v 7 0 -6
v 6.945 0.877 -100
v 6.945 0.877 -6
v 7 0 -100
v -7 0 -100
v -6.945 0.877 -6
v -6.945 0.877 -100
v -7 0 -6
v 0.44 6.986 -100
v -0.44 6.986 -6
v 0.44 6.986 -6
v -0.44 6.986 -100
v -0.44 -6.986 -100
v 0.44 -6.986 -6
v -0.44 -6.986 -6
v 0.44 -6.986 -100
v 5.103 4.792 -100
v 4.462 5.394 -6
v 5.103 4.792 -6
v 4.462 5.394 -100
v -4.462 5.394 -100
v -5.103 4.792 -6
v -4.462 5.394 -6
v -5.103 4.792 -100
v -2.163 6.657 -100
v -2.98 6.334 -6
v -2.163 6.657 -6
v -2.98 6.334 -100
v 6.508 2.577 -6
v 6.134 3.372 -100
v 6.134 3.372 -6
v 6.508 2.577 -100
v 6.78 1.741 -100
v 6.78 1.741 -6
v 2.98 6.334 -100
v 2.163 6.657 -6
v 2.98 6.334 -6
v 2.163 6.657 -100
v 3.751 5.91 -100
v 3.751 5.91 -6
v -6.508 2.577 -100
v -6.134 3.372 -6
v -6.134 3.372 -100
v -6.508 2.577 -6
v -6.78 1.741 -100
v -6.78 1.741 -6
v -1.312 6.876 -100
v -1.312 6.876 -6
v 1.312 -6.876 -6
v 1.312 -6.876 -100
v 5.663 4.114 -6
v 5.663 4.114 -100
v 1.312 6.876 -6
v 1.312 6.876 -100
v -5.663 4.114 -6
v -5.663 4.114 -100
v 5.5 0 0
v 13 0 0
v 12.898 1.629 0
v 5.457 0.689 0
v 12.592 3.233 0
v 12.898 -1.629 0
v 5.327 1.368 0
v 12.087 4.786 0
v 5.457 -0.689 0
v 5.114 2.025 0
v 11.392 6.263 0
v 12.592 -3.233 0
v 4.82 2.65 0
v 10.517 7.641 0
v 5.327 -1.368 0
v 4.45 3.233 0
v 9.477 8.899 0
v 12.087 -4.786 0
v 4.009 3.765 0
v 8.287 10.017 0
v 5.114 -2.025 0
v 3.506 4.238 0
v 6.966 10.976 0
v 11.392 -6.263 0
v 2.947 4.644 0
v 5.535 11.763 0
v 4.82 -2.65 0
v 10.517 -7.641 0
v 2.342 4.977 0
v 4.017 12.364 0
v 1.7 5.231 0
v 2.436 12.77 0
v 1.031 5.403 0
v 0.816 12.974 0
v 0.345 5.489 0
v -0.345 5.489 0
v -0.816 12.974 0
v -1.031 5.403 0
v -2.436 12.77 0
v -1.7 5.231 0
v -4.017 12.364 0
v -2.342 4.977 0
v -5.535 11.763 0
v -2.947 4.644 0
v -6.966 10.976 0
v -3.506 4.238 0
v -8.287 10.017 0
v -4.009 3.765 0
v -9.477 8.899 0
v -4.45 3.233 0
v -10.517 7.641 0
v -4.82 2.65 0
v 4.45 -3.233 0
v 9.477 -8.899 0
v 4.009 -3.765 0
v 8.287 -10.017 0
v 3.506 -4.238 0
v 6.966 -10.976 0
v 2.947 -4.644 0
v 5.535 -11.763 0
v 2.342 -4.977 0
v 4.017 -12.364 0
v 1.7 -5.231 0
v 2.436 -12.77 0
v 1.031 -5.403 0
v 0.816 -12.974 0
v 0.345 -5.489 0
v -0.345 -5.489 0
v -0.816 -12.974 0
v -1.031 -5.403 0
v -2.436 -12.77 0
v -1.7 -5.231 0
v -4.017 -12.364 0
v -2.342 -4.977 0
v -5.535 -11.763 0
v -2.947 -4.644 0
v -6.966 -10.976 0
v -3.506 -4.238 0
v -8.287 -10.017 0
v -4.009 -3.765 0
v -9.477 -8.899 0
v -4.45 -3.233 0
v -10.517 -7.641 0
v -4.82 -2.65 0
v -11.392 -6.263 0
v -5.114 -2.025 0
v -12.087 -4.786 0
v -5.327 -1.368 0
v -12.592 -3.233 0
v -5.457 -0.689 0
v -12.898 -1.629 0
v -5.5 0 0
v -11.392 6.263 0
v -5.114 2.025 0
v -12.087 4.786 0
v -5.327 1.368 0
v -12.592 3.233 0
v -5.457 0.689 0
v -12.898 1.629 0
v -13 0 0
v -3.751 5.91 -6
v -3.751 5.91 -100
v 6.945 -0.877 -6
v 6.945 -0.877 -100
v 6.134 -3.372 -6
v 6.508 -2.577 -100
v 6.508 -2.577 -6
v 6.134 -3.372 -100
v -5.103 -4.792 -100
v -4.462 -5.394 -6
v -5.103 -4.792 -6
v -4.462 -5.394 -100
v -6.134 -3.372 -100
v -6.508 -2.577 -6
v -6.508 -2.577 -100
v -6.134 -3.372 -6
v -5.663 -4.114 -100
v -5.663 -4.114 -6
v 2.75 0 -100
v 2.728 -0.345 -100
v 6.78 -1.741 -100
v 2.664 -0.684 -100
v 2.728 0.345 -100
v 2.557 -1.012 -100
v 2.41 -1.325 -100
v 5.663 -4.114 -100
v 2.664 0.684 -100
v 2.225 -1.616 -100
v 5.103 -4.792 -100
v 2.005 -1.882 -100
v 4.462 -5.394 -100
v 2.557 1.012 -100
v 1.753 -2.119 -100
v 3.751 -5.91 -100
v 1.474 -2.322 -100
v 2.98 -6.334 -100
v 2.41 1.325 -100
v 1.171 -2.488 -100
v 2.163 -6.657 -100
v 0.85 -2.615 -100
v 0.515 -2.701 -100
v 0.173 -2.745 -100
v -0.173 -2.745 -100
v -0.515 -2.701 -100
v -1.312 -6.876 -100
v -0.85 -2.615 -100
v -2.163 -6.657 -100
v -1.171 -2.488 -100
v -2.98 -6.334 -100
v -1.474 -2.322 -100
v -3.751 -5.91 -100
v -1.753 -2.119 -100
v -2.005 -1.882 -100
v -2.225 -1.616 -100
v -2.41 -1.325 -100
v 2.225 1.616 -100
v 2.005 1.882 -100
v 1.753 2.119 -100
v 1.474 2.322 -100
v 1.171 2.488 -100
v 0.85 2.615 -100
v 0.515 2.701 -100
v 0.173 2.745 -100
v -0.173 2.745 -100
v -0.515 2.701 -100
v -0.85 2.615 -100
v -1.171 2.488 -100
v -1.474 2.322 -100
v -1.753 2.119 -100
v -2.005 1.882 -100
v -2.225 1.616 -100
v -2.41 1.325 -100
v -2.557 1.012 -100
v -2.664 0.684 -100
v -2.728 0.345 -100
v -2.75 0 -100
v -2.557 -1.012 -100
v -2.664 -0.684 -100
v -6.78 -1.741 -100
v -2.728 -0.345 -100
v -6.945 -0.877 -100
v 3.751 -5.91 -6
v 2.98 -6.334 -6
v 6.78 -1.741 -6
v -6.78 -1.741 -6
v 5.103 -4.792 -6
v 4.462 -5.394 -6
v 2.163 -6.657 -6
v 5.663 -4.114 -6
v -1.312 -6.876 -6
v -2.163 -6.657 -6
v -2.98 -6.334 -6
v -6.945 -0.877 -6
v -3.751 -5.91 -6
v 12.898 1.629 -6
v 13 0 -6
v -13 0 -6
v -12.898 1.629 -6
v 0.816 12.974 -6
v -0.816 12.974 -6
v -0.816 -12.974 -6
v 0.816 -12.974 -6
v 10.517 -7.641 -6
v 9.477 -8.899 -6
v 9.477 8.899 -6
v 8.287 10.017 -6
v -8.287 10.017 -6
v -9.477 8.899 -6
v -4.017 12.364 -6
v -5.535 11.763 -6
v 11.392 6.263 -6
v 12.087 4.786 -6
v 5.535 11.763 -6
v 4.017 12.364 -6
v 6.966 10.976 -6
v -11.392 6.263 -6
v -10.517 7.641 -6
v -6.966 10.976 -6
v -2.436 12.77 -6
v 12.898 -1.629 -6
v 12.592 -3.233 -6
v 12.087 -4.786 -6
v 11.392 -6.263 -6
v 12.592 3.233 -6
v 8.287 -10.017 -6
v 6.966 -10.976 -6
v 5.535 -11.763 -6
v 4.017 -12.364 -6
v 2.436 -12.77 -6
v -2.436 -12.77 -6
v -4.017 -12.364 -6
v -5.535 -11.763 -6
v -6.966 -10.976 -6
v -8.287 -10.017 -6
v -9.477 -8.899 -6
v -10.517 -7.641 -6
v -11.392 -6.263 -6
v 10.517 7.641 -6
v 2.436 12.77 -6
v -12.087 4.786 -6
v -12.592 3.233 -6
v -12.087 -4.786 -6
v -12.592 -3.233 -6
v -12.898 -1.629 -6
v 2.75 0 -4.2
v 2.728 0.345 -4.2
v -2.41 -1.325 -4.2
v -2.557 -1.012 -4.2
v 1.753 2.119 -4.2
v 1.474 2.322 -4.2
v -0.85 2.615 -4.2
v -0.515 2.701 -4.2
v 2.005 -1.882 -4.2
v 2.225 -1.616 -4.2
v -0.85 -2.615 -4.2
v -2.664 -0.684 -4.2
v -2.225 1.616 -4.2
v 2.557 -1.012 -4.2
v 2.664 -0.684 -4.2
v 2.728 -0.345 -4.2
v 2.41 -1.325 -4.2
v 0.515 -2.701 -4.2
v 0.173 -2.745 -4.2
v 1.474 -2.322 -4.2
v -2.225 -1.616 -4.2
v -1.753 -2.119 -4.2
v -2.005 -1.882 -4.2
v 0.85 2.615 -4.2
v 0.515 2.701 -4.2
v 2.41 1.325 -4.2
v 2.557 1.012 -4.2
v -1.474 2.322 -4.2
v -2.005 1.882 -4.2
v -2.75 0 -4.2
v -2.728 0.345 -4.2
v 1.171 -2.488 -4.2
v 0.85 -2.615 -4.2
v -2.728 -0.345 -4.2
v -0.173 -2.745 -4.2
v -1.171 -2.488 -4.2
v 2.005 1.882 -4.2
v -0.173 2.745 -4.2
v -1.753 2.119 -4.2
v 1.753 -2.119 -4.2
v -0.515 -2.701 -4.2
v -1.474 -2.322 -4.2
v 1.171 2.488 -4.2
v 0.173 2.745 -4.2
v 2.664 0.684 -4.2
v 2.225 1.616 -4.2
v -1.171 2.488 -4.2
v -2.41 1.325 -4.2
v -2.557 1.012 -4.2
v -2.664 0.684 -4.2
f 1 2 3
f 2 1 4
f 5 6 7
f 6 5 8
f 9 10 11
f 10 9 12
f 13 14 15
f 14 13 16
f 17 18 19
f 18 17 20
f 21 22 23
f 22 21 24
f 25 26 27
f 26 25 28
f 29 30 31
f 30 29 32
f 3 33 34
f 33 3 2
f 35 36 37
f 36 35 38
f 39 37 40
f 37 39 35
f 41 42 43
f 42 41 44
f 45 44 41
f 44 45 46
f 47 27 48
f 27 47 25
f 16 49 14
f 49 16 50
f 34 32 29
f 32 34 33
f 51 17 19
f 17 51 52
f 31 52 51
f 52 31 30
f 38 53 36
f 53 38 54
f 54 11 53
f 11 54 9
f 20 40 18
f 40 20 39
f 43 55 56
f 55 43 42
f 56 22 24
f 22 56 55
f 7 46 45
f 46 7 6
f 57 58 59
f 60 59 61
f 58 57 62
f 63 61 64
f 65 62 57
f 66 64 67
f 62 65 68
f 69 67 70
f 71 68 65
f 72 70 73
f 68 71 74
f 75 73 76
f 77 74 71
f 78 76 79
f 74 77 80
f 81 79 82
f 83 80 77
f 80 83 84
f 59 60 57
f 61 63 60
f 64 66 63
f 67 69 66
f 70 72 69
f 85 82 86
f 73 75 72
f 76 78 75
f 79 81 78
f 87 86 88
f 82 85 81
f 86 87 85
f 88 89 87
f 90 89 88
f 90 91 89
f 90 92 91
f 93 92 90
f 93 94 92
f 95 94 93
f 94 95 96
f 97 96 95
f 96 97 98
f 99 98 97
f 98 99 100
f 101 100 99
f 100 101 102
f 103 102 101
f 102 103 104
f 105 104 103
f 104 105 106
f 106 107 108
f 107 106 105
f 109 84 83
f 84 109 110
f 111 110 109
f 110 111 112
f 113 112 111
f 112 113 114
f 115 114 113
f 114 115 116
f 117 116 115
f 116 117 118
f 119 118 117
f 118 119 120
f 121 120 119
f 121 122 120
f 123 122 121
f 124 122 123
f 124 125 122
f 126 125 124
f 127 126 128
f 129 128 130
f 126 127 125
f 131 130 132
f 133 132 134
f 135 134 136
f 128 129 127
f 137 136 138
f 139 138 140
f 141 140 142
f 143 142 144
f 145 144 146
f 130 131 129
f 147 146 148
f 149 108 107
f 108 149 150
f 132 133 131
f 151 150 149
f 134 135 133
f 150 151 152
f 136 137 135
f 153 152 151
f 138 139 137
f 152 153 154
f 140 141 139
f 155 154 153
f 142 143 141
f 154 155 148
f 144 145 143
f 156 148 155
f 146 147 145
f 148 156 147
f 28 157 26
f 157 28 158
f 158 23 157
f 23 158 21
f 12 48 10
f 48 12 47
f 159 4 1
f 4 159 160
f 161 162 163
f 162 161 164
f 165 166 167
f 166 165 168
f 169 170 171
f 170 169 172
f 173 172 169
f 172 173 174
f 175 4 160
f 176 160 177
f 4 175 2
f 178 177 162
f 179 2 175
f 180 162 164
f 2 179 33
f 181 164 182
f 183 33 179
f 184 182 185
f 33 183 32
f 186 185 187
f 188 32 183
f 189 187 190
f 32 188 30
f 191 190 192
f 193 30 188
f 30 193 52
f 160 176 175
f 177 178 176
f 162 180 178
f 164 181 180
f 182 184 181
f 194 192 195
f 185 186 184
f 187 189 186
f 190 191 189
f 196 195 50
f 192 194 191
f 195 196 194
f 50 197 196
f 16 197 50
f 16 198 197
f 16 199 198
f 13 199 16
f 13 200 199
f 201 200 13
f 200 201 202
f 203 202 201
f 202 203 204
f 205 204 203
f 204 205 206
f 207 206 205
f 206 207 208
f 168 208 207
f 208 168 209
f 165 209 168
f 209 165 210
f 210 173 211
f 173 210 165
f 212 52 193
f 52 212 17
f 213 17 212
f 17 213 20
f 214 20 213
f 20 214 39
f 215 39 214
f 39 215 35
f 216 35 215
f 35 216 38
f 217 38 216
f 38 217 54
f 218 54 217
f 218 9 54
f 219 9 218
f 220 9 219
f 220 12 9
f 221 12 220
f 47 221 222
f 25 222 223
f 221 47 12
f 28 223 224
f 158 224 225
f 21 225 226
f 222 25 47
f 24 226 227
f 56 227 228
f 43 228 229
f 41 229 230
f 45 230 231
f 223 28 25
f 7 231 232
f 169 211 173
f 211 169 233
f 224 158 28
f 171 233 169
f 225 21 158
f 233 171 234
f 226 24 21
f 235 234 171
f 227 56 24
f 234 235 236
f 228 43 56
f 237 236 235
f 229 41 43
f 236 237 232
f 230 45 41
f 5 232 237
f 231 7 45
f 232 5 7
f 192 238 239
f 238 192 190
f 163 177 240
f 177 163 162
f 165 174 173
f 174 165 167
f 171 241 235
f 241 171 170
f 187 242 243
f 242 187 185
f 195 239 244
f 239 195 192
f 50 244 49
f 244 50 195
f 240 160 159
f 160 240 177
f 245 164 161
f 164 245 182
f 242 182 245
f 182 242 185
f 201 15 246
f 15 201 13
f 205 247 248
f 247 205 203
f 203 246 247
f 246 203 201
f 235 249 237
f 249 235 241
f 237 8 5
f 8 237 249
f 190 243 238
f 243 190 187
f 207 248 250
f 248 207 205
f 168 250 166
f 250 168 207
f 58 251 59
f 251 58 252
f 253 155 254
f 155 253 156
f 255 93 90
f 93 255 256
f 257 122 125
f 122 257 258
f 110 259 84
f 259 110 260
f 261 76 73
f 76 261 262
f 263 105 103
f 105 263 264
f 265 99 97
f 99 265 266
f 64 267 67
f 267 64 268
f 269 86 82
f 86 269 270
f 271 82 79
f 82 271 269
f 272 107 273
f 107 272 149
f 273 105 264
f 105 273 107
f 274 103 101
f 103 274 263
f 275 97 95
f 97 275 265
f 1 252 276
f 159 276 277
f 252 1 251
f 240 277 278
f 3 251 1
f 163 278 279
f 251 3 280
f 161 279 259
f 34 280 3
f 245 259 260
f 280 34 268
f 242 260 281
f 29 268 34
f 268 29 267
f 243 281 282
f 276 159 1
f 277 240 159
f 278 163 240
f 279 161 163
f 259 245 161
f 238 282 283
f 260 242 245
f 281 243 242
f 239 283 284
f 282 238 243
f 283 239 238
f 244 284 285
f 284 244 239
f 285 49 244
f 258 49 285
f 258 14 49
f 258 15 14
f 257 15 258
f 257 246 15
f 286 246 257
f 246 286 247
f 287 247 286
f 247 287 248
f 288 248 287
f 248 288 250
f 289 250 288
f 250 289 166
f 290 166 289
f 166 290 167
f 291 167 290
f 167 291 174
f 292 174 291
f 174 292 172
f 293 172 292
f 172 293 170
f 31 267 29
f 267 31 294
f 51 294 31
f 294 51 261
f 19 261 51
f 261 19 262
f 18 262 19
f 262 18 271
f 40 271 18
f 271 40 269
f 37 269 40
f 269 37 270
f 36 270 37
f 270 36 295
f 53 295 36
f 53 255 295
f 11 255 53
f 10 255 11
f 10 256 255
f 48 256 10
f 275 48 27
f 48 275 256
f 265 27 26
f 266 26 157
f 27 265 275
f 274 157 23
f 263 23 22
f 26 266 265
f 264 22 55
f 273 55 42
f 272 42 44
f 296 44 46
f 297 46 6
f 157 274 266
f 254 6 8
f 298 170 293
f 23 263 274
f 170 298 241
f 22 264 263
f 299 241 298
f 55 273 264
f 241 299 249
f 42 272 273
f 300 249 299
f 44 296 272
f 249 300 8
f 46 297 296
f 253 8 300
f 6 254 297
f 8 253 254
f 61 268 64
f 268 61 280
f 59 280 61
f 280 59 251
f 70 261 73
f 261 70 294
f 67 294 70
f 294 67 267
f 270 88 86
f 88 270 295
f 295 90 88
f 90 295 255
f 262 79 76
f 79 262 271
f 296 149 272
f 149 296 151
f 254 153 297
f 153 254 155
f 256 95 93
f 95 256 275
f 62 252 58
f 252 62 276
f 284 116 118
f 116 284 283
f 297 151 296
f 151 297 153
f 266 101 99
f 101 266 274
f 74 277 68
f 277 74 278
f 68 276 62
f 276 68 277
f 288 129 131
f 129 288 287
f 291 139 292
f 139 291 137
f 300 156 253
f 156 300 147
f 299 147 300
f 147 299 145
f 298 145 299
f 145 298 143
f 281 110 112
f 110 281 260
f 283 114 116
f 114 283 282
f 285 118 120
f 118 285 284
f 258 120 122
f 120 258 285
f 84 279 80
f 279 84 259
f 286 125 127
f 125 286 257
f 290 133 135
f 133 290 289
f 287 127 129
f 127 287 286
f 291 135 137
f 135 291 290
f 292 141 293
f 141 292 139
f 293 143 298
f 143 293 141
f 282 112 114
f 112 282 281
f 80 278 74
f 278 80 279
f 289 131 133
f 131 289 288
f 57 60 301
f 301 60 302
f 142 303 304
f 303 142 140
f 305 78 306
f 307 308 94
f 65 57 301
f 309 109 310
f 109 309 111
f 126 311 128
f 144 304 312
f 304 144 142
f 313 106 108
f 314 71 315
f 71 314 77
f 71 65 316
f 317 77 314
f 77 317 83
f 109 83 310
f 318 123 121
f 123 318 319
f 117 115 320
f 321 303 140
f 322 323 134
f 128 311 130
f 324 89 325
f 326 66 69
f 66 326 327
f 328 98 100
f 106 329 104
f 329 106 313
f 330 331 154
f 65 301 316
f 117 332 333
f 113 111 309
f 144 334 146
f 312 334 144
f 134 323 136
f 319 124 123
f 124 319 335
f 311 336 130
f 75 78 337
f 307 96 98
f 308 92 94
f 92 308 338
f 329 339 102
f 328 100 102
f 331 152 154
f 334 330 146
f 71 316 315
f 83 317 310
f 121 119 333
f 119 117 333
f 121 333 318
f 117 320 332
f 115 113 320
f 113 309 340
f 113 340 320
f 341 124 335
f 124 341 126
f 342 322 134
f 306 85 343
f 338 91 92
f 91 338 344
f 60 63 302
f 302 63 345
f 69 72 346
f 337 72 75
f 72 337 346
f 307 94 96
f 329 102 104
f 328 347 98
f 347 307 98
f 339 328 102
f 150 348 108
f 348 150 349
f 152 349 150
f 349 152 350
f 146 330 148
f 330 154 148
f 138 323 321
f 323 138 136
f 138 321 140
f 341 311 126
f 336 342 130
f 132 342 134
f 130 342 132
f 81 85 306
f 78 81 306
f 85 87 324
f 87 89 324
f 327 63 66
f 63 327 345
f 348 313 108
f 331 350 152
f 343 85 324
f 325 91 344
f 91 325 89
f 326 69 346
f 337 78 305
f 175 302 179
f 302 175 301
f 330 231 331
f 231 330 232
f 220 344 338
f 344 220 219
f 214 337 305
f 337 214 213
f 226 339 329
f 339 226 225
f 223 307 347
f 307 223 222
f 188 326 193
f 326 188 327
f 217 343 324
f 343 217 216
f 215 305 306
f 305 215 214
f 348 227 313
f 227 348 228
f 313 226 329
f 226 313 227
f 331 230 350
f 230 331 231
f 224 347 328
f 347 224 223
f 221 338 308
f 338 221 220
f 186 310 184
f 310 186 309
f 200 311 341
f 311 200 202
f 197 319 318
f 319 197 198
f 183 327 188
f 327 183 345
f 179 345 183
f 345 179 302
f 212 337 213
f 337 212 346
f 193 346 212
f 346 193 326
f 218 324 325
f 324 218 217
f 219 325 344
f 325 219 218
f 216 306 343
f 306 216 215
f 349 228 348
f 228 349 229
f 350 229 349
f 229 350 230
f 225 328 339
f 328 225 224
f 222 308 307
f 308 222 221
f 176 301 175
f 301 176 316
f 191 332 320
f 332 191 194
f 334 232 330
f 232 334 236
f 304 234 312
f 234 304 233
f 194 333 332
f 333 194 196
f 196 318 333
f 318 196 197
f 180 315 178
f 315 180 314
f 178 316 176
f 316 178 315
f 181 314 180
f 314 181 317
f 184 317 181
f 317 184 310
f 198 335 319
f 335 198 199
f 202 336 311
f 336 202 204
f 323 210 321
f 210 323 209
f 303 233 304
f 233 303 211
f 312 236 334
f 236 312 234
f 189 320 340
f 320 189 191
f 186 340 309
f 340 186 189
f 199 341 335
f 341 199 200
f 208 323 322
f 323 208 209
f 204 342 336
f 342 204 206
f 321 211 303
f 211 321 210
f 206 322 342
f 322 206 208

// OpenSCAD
$fn = 50;


difference() {
	union() {
		translate(v = [0, 0, -100.0000000000]) {
			cylinder(h = 100, r = 7.0000000000);
		}
		translate(v = [0, 0, -6.0000000000]) {
			cylinder(h = 6, r = 13.0000000000);
		}
	}
	union() {
		translate(v = [0, 0, 0]) {
			rotate(a = [0, 0, 0]) {
				difference() {
					union() {
						#translate(v = [0, 0, -100.0000000000]) {
							cylinder(h = 100, r = 2.2500000000);
						}
						#translate(v = [0, 0, -4.2000000000]) {
							cylinder(h = 4.2000000000, r1 = 2.7500000000, r2 = 5.5000000000);
						}
						#translate(v = [0, 0, -100.0000000000]) {
							cylinder(h = 100, r = 2.7500000000);
						}
						#translate(v = [0, 0, -100.0000000000]) {
							cylinder(h = 100, r = 2.2500000000);
						}
					}
					union();
				}
			}
		}
	}
}
